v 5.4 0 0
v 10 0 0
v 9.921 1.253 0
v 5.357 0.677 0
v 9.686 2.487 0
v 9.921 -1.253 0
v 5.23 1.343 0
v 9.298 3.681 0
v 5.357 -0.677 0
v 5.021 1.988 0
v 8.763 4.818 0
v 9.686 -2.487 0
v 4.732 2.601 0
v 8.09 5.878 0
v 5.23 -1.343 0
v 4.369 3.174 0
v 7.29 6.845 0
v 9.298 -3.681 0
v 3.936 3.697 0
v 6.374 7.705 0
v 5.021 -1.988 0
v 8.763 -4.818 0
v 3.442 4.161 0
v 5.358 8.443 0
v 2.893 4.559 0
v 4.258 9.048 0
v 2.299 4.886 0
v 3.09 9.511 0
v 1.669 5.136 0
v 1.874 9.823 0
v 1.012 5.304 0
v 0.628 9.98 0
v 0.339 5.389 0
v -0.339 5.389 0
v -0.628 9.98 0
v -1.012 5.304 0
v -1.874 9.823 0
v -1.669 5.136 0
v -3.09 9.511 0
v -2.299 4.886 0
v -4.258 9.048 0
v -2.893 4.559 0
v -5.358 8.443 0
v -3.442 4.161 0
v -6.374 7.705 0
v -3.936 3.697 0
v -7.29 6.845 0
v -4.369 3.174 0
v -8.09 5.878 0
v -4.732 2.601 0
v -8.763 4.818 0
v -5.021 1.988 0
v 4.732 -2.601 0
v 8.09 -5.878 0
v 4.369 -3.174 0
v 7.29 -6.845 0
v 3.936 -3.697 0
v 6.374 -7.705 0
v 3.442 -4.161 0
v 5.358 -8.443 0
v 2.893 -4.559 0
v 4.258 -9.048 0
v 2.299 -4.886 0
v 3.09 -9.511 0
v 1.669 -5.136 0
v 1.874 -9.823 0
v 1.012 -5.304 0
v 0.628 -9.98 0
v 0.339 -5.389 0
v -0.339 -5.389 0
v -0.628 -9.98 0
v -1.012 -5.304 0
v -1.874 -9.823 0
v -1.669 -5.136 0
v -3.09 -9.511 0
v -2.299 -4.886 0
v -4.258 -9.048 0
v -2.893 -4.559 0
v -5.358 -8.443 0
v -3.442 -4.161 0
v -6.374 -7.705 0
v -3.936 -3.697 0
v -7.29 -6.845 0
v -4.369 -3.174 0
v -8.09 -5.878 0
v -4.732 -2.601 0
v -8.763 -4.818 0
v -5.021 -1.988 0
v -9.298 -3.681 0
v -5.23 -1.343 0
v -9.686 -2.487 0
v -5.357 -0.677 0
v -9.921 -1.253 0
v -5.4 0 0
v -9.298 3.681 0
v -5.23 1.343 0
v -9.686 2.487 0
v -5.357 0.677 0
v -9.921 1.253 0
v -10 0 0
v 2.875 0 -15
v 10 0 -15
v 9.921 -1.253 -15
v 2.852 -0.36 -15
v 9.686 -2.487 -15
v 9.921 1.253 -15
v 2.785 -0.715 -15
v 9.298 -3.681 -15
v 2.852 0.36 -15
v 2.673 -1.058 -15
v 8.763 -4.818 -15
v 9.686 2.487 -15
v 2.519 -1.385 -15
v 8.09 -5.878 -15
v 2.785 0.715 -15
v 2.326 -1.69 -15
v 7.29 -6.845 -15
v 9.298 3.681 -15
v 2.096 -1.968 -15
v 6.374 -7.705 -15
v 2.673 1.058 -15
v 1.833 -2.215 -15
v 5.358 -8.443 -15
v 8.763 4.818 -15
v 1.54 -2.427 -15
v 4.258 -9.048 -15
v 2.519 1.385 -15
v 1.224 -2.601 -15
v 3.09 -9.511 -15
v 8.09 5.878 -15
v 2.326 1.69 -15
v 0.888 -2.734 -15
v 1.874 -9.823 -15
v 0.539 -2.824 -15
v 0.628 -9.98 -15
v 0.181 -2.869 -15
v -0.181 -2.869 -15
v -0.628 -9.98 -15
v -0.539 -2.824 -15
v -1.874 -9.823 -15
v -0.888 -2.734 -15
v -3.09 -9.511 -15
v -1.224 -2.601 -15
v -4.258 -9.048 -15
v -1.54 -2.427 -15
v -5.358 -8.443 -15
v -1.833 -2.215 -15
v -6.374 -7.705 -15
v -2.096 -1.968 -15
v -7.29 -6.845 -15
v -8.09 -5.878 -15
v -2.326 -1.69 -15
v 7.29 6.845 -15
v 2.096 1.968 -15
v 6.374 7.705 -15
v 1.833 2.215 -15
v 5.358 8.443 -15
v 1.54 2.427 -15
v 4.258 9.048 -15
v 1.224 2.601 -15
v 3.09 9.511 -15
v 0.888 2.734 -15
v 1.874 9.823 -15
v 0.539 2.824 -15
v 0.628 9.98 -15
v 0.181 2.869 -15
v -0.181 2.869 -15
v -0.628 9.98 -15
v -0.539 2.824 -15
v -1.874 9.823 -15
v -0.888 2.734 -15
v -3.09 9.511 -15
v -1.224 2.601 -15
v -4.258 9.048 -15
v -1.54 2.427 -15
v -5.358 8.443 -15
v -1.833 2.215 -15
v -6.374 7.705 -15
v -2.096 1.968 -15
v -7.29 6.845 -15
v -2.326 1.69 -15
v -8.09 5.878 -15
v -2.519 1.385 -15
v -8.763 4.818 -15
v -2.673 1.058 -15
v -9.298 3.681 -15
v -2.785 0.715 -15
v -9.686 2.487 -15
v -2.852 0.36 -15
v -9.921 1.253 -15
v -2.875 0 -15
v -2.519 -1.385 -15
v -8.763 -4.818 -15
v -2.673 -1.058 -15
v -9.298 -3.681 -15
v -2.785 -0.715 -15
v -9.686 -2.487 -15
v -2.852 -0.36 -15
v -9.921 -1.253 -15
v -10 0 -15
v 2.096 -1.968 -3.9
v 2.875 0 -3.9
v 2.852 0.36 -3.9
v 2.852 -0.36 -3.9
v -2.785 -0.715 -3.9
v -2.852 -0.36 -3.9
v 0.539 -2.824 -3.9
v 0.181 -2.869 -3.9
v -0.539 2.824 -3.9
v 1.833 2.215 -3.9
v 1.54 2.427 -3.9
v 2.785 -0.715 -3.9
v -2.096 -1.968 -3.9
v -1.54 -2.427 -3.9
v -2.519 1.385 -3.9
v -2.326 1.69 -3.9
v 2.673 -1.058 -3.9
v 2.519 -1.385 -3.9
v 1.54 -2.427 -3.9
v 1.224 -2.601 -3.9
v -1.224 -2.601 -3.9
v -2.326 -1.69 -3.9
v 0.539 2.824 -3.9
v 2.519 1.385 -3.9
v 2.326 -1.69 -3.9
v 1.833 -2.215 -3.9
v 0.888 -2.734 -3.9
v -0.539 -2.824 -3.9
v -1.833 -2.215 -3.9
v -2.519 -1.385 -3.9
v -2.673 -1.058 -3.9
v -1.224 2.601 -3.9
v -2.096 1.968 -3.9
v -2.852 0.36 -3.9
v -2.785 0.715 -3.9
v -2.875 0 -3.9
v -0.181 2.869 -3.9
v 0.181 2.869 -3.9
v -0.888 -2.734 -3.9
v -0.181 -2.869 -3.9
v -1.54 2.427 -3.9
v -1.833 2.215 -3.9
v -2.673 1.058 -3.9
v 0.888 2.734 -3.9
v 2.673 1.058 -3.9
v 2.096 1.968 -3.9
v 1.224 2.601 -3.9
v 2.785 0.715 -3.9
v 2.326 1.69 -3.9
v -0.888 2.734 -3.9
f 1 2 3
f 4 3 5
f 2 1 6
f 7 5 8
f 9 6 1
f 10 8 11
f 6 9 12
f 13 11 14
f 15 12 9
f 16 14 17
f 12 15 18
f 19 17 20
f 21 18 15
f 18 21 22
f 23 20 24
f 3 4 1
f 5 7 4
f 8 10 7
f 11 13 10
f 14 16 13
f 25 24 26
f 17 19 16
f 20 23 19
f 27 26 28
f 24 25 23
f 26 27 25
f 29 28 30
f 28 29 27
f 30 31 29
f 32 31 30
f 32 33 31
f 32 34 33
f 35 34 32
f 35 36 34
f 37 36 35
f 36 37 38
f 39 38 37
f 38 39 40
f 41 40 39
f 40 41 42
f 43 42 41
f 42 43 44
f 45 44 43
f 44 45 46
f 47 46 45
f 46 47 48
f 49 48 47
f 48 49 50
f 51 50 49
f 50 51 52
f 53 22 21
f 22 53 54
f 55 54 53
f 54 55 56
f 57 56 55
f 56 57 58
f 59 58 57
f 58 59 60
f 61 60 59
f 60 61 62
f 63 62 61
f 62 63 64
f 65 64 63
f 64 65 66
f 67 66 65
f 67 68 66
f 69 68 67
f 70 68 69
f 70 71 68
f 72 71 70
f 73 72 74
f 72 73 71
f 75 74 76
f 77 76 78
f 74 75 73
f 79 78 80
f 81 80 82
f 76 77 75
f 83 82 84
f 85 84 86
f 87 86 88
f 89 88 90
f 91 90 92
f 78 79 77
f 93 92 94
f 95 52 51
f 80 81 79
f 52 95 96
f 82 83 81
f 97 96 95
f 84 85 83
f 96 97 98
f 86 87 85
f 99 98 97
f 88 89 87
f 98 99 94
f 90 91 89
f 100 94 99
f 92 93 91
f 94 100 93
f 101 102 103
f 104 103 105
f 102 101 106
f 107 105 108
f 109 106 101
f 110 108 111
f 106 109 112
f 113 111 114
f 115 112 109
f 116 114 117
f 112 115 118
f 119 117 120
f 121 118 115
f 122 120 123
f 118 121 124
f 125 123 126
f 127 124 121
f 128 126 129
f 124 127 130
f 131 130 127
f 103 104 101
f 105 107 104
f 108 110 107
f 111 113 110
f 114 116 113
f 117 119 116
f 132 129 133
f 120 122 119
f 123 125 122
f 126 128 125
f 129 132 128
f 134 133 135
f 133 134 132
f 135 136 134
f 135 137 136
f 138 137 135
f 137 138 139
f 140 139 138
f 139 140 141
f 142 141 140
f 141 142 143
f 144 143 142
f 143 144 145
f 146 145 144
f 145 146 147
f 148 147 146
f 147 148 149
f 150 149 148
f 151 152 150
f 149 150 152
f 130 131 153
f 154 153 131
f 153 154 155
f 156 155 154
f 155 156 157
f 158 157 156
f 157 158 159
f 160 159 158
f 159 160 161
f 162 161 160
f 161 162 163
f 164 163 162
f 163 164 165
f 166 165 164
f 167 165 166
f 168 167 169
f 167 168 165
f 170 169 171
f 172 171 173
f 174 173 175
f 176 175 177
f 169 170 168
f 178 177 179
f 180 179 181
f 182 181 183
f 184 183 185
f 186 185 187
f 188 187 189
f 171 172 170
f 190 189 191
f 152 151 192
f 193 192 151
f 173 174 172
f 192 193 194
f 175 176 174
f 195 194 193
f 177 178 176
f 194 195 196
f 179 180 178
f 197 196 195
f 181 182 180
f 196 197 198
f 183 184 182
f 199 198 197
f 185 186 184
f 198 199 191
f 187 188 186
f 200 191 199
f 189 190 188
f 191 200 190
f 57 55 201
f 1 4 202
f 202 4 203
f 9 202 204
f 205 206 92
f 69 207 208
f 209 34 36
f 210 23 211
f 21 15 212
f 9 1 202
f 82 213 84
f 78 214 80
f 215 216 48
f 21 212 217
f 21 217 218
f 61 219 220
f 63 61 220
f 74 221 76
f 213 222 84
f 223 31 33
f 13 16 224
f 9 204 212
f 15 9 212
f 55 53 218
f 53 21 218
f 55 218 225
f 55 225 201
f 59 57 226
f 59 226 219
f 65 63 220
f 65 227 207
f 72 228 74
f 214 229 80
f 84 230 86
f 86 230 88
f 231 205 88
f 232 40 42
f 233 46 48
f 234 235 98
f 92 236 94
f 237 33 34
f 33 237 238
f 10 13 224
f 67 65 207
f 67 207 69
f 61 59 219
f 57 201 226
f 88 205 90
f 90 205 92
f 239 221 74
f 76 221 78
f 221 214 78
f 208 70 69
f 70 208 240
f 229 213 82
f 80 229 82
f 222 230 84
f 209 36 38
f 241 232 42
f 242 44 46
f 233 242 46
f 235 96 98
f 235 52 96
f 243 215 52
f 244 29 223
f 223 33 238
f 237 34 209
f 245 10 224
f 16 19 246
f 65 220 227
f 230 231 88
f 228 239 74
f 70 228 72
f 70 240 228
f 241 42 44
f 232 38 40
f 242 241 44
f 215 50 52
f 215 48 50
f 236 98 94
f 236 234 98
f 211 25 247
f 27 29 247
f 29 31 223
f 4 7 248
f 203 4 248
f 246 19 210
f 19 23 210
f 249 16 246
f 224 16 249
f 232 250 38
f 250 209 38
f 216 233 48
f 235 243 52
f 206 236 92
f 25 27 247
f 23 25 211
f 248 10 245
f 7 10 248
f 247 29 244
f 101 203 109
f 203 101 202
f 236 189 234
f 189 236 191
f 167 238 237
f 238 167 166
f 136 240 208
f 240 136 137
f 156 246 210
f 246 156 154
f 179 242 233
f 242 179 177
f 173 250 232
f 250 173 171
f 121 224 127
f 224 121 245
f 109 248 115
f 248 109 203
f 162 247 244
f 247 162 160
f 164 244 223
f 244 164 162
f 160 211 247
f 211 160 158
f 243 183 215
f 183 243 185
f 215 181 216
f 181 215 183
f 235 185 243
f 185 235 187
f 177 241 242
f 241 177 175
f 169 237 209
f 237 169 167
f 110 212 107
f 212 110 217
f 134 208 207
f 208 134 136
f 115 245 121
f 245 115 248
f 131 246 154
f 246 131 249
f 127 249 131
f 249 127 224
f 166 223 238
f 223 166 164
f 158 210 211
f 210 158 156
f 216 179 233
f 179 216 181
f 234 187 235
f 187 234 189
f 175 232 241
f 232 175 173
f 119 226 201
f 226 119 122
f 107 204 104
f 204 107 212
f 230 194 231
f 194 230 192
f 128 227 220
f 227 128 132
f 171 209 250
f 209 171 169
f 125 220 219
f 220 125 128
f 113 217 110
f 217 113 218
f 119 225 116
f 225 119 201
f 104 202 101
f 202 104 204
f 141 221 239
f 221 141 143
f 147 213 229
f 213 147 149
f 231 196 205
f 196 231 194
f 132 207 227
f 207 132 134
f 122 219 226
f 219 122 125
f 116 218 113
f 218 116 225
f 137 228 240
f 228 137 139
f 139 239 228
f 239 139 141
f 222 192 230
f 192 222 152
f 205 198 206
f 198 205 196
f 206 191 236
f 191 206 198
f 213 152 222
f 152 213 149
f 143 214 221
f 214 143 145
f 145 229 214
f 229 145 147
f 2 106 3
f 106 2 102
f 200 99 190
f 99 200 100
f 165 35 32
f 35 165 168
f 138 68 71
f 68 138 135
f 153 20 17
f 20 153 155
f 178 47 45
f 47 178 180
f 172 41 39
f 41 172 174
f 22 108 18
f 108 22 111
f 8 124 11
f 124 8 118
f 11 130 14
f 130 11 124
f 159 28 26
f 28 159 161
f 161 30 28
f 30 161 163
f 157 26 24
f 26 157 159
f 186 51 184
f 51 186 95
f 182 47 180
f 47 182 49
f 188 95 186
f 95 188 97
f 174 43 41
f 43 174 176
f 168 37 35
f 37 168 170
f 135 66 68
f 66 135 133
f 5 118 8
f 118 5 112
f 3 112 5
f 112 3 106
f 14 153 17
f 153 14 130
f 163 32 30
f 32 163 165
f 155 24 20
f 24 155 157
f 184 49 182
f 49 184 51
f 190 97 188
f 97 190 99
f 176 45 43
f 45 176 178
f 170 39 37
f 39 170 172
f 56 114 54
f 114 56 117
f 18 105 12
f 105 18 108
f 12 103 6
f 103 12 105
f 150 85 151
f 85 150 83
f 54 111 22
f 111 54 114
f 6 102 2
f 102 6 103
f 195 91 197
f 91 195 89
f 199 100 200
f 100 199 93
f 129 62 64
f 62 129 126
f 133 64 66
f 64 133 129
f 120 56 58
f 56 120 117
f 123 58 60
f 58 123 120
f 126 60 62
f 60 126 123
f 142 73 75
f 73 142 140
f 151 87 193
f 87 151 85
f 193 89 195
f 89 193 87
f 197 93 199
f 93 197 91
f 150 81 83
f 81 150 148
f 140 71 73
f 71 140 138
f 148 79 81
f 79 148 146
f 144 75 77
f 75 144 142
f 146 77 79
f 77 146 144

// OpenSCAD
$fn = 50;


difference() {
	union() {
		translate(v = [0, 0, -15.0000000000]) {
			cylinder(h = 15, r = 10.0000000000);
		}
	}
	union() {
		translate(v = [0, 0, 0]) {
			rotate(a = [0, 0, 0]) {
				difference() {
					union() {
						#translate(v = [0, 0, -15.0000000000]) {
							cylinder(h = 15, r = 2.6000000000);
						}
						#translate(v = [0, 0, -3.9000000000]) {
							cylinder(h = 3.9000000000, r1 = 2.8750000000, r2 = 5.4000000000);
						}
						#translate(v = [0, 0, -15.0000000000]) {
							cylinder(h = 15, r = 2.8750000000);
						}
						#translate(v = [0, 0, -15.0000000000]) {
							cylinder(h = 15, r = 2.6000000000);
						}
					}
					union();
				}
			}
		}
	}
}
